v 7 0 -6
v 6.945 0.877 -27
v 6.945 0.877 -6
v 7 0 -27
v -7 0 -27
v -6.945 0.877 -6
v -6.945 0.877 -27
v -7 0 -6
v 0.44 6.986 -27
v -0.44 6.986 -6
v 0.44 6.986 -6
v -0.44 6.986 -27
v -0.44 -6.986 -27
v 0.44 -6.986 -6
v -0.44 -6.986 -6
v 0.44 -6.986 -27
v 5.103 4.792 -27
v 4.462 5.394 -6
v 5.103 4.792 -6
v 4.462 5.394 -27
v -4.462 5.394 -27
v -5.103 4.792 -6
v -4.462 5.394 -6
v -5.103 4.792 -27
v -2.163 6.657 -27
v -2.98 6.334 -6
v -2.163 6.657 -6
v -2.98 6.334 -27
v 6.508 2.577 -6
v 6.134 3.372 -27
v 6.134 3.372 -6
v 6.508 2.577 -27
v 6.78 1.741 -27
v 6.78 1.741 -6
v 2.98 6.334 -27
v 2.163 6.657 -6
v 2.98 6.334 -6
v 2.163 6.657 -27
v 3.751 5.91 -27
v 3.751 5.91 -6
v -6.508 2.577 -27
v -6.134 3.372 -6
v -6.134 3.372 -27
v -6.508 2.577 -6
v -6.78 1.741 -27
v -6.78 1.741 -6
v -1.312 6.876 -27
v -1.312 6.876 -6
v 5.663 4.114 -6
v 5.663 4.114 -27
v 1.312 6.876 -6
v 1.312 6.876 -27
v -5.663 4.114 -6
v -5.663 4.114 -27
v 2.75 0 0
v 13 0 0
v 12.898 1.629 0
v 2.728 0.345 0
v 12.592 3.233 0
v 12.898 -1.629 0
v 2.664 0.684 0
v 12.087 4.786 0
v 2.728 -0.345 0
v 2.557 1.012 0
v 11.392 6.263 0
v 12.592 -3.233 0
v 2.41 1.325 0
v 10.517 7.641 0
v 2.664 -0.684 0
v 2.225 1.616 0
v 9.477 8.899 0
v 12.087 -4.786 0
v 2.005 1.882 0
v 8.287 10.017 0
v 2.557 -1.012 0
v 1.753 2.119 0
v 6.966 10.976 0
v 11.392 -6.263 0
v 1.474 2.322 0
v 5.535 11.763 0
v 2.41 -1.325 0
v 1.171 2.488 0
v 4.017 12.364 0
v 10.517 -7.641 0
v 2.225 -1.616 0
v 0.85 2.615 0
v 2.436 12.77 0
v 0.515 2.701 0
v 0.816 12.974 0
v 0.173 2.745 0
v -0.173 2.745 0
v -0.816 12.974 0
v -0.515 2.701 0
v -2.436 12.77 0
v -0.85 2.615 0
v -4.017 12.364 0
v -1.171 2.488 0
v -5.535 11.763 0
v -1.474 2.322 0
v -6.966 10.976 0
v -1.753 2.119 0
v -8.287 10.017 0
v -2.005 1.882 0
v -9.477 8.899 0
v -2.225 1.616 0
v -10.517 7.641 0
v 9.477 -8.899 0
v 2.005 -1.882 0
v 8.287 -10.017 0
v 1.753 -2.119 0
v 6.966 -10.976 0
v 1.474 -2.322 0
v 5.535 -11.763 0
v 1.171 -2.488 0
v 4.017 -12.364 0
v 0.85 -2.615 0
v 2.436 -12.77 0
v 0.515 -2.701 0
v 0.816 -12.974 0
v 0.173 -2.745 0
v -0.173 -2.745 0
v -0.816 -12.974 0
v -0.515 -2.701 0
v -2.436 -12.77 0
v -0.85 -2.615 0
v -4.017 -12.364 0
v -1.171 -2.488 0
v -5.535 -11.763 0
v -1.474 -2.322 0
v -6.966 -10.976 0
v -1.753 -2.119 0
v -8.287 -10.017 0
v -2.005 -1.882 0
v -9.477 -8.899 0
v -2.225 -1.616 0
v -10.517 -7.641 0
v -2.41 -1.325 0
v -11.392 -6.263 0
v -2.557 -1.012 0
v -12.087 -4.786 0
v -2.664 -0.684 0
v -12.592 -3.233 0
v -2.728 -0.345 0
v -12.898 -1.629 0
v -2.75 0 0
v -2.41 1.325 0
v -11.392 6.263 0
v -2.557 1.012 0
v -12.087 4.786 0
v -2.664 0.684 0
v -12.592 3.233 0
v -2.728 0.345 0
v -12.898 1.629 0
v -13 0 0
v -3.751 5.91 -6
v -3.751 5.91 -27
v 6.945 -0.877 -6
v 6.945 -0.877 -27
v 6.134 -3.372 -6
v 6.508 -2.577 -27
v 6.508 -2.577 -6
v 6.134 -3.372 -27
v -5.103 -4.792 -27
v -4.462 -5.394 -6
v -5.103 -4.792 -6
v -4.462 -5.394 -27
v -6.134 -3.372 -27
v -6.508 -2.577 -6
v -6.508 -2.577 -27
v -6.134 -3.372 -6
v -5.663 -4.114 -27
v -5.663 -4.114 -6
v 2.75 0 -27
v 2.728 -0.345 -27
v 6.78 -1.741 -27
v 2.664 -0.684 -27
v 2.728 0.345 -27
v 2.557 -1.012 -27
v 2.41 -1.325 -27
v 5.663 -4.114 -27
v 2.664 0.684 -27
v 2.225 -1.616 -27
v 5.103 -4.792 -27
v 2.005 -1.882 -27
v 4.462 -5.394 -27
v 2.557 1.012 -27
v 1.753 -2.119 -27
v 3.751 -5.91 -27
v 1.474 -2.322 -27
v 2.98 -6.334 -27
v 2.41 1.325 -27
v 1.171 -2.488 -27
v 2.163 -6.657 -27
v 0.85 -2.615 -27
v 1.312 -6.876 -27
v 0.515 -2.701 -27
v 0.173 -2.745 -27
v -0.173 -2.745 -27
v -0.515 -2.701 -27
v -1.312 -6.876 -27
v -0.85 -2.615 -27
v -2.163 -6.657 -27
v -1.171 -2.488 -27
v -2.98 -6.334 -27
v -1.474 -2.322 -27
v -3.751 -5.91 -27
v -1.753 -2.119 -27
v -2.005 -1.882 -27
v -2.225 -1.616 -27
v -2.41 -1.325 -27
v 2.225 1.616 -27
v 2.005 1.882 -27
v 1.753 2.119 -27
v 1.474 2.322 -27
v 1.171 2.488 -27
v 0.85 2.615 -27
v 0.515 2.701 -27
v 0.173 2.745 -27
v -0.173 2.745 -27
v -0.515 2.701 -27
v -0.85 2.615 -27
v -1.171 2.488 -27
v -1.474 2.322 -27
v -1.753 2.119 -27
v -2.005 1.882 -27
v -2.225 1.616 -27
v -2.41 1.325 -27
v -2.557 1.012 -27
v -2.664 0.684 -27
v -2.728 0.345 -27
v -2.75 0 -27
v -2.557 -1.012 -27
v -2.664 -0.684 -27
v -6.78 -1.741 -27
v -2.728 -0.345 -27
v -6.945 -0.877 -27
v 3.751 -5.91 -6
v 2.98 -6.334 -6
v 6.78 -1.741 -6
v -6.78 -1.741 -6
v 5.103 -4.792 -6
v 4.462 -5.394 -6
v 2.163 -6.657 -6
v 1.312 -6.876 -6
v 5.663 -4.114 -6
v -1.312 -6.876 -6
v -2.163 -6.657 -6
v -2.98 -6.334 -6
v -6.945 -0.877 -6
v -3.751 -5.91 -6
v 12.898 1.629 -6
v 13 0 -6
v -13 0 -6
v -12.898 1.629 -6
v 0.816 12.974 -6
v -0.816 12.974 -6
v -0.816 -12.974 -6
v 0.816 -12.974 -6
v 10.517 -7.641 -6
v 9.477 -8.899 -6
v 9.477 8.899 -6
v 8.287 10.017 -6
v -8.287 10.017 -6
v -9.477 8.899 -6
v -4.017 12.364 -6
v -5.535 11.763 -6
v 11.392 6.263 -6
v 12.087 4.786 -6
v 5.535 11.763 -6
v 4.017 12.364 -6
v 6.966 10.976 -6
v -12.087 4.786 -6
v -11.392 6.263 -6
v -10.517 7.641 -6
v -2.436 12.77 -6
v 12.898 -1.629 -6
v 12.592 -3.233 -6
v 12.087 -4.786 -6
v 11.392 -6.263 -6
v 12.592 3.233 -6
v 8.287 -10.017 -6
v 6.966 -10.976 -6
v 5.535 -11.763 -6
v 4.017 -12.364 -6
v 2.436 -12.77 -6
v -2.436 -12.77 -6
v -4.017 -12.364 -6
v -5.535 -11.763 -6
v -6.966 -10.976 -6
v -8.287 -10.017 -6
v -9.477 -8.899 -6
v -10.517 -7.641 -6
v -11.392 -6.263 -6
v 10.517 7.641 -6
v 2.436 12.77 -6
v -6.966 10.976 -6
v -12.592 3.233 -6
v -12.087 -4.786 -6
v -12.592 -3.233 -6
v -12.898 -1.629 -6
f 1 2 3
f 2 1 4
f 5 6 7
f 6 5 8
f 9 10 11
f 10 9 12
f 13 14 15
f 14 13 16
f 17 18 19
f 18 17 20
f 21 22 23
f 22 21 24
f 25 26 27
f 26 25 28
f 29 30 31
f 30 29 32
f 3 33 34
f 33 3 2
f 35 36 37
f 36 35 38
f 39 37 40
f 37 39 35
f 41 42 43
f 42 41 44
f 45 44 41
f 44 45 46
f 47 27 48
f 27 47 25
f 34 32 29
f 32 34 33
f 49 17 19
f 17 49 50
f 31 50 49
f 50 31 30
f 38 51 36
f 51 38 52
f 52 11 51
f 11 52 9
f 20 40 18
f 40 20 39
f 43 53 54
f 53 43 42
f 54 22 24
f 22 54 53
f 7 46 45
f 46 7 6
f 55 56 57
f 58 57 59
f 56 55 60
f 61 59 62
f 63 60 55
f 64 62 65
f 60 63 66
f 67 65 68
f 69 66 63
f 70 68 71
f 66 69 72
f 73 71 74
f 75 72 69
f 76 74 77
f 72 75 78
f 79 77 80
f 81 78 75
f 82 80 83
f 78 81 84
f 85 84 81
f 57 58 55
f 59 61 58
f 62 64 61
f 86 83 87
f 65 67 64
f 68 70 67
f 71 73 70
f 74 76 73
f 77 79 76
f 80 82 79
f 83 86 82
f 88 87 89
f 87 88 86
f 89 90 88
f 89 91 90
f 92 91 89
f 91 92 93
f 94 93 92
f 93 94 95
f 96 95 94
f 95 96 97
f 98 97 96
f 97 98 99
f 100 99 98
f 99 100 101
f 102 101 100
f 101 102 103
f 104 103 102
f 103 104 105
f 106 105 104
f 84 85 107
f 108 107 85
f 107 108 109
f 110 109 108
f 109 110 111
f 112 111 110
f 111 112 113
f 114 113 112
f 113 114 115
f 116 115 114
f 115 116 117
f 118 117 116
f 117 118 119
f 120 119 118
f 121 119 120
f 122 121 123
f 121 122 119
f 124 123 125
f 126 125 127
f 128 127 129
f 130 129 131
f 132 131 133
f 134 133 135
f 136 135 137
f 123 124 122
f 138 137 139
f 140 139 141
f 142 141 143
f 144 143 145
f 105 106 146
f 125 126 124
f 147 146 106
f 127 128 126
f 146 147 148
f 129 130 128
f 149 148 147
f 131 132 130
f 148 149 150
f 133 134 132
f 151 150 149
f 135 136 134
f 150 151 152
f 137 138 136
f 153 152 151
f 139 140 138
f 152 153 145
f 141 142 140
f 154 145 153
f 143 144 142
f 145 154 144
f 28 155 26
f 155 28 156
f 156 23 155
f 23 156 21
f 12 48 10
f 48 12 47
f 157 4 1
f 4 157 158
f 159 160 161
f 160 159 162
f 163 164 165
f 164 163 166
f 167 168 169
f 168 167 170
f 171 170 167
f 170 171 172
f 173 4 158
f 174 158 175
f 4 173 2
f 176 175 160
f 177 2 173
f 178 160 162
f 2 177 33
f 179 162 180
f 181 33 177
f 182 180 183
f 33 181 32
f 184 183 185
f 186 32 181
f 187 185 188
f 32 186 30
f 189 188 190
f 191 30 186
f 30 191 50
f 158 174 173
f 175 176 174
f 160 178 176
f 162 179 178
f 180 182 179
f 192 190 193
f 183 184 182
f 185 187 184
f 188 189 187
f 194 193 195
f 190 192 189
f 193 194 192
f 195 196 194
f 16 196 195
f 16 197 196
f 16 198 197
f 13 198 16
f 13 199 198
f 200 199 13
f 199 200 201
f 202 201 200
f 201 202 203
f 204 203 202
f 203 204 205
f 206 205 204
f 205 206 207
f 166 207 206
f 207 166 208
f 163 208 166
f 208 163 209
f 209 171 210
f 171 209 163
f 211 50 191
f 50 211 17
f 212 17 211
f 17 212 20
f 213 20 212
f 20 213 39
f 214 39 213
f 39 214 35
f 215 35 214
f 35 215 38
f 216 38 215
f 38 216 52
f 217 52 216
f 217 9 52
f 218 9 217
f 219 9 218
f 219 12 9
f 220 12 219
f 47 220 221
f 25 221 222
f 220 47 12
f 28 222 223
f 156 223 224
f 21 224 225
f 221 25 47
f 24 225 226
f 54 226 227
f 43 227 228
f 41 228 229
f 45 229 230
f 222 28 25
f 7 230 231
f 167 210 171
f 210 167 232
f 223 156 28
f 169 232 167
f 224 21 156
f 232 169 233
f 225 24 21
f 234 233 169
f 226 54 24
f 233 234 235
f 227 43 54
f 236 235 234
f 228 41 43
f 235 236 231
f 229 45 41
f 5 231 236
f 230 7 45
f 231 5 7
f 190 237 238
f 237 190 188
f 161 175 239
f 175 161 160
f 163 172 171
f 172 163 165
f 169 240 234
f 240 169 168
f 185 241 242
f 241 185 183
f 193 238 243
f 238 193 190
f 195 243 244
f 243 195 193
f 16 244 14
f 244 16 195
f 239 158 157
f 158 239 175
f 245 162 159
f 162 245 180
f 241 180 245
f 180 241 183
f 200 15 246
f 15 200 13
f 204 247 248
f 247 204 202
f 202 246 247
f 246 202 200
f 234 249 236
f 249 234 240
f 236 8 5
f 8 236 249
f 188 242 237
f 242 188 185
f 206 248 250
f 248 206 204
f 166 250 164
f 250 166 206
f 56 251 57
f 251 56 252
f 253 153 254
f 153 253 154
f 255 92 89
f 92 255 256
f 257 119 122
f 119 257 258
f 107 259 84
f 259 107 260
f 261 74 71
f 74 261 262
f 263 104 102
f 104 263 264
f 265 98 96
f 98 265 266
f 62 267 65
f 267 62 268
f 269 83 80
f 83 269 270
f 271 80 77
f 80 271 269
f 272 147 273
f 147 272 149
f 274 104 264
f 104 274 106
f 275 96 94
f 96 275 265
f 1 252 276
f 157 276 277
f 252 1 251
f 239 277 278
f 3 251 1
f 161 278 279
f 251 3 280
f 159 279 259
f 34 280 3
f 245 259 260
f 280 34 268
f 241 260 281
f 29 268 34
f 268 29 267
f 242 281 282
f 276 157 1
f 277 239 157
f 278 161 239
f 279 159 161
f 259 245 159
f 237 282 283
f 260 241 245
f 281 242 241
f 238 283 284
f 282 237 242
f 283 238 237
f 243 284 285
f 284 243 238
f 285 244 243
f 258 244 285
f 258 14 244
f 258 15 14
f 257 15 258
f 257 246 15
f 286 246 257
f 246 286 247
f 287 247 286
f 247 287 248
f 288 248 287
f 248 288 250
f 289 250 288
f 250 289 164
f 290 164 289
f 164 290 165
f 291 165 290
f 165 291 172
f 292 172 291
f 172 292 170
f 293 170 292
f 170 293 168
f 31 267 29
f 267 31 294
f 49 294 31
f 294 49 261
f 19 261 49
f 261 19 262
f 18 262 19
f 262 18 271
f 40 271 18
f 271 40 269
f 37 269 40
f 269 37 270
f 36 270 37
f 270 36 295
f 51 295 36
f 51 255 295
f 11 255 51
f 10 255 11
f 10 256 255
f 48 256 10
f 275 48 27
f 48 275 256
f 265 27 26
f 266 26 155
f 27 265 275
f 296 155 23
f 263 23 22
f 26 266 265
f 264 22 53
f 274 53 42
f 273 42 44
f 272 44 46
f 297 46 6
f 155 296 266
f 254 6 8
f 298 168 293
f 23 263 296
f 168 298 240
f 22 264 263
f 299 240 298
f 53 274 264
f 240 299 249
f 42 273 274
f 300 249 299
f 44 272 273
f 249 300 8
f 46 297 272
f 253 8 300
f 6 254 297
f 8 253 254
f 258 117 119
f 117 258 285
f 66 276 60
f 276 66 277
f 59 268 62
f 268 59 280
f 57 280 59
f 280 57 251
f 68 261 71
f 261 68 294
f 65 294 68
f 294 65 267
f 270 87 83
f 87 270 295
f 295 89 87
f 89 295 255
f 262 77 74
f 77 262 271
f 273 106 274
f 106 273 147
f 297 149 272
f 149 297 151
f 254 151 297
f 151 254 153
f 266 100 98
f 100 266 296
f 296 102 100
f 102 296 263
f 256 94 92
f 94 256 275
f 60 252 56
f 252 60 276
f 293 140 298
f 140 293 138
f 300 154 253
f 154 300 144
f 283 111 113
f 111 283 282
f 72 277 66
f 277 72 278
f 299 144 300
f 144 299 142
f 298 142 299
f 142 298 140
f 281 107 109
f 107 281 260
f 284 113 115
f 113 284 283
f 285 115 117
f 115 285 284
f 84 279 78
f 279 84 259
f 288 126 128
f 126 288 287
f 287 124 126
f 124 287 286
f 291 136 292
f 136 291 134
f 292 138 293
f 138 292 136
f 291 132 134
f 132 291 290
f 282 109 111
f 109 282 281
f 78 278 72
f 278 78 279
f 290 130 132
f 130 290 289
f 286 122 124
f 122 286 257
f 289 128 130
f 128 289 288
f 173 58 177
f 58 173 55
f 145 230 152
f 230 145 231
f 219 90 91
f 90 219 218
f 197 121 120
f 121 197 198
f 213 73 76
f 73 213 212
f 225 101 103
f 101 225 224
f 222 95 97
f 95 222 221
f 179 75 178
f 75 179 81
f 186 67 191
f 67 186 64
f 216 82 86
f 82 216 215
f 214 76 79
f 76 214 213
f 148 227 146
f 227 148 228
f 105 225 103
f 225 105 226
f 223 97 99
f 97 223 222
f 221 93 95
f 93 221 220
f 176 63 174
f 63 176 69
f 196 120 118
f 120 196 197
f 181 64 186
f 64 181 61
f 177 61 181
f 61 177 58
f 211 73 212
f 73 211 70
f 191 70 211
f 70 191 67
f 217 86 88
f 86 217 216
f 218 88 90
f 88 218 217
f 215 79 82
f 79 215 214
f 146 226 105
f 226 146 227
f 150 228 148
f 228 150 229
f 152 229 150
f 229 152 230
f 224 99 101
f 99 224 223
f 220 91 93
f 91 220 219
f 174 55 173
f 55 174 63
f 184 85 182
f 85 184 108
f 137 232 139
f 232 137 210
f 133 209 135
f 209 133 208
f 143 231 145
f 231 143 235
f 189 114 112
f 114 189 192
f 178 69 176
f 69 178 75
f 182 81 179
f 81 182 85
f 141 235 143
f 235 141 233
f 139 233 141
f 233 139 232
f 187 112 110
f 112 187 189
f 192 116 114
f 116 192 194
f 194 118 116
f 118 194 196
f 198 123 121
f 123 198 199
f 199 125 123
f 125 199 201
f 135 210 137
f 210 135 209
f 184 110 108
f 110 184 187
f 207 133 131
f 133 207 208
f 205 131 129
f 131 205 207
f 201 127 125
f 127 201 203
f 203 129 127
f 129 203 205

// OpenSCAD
$fn = 50;


difference() {
	union() {
		translate(v = [0, 0, -27.0000000000]) {
			cylinder(h = 27, r = 7.0000000000);
		}
		translate(v = [0, 0, -6.0000000000]) {
			cylinder(h = 6, r = 13.0000000000);
		}
	}
	union() {
		#translate(v = [0, 0, -27]) {
			cylinder(h = 27, r = 2.7500000000);
		}
	}
}
